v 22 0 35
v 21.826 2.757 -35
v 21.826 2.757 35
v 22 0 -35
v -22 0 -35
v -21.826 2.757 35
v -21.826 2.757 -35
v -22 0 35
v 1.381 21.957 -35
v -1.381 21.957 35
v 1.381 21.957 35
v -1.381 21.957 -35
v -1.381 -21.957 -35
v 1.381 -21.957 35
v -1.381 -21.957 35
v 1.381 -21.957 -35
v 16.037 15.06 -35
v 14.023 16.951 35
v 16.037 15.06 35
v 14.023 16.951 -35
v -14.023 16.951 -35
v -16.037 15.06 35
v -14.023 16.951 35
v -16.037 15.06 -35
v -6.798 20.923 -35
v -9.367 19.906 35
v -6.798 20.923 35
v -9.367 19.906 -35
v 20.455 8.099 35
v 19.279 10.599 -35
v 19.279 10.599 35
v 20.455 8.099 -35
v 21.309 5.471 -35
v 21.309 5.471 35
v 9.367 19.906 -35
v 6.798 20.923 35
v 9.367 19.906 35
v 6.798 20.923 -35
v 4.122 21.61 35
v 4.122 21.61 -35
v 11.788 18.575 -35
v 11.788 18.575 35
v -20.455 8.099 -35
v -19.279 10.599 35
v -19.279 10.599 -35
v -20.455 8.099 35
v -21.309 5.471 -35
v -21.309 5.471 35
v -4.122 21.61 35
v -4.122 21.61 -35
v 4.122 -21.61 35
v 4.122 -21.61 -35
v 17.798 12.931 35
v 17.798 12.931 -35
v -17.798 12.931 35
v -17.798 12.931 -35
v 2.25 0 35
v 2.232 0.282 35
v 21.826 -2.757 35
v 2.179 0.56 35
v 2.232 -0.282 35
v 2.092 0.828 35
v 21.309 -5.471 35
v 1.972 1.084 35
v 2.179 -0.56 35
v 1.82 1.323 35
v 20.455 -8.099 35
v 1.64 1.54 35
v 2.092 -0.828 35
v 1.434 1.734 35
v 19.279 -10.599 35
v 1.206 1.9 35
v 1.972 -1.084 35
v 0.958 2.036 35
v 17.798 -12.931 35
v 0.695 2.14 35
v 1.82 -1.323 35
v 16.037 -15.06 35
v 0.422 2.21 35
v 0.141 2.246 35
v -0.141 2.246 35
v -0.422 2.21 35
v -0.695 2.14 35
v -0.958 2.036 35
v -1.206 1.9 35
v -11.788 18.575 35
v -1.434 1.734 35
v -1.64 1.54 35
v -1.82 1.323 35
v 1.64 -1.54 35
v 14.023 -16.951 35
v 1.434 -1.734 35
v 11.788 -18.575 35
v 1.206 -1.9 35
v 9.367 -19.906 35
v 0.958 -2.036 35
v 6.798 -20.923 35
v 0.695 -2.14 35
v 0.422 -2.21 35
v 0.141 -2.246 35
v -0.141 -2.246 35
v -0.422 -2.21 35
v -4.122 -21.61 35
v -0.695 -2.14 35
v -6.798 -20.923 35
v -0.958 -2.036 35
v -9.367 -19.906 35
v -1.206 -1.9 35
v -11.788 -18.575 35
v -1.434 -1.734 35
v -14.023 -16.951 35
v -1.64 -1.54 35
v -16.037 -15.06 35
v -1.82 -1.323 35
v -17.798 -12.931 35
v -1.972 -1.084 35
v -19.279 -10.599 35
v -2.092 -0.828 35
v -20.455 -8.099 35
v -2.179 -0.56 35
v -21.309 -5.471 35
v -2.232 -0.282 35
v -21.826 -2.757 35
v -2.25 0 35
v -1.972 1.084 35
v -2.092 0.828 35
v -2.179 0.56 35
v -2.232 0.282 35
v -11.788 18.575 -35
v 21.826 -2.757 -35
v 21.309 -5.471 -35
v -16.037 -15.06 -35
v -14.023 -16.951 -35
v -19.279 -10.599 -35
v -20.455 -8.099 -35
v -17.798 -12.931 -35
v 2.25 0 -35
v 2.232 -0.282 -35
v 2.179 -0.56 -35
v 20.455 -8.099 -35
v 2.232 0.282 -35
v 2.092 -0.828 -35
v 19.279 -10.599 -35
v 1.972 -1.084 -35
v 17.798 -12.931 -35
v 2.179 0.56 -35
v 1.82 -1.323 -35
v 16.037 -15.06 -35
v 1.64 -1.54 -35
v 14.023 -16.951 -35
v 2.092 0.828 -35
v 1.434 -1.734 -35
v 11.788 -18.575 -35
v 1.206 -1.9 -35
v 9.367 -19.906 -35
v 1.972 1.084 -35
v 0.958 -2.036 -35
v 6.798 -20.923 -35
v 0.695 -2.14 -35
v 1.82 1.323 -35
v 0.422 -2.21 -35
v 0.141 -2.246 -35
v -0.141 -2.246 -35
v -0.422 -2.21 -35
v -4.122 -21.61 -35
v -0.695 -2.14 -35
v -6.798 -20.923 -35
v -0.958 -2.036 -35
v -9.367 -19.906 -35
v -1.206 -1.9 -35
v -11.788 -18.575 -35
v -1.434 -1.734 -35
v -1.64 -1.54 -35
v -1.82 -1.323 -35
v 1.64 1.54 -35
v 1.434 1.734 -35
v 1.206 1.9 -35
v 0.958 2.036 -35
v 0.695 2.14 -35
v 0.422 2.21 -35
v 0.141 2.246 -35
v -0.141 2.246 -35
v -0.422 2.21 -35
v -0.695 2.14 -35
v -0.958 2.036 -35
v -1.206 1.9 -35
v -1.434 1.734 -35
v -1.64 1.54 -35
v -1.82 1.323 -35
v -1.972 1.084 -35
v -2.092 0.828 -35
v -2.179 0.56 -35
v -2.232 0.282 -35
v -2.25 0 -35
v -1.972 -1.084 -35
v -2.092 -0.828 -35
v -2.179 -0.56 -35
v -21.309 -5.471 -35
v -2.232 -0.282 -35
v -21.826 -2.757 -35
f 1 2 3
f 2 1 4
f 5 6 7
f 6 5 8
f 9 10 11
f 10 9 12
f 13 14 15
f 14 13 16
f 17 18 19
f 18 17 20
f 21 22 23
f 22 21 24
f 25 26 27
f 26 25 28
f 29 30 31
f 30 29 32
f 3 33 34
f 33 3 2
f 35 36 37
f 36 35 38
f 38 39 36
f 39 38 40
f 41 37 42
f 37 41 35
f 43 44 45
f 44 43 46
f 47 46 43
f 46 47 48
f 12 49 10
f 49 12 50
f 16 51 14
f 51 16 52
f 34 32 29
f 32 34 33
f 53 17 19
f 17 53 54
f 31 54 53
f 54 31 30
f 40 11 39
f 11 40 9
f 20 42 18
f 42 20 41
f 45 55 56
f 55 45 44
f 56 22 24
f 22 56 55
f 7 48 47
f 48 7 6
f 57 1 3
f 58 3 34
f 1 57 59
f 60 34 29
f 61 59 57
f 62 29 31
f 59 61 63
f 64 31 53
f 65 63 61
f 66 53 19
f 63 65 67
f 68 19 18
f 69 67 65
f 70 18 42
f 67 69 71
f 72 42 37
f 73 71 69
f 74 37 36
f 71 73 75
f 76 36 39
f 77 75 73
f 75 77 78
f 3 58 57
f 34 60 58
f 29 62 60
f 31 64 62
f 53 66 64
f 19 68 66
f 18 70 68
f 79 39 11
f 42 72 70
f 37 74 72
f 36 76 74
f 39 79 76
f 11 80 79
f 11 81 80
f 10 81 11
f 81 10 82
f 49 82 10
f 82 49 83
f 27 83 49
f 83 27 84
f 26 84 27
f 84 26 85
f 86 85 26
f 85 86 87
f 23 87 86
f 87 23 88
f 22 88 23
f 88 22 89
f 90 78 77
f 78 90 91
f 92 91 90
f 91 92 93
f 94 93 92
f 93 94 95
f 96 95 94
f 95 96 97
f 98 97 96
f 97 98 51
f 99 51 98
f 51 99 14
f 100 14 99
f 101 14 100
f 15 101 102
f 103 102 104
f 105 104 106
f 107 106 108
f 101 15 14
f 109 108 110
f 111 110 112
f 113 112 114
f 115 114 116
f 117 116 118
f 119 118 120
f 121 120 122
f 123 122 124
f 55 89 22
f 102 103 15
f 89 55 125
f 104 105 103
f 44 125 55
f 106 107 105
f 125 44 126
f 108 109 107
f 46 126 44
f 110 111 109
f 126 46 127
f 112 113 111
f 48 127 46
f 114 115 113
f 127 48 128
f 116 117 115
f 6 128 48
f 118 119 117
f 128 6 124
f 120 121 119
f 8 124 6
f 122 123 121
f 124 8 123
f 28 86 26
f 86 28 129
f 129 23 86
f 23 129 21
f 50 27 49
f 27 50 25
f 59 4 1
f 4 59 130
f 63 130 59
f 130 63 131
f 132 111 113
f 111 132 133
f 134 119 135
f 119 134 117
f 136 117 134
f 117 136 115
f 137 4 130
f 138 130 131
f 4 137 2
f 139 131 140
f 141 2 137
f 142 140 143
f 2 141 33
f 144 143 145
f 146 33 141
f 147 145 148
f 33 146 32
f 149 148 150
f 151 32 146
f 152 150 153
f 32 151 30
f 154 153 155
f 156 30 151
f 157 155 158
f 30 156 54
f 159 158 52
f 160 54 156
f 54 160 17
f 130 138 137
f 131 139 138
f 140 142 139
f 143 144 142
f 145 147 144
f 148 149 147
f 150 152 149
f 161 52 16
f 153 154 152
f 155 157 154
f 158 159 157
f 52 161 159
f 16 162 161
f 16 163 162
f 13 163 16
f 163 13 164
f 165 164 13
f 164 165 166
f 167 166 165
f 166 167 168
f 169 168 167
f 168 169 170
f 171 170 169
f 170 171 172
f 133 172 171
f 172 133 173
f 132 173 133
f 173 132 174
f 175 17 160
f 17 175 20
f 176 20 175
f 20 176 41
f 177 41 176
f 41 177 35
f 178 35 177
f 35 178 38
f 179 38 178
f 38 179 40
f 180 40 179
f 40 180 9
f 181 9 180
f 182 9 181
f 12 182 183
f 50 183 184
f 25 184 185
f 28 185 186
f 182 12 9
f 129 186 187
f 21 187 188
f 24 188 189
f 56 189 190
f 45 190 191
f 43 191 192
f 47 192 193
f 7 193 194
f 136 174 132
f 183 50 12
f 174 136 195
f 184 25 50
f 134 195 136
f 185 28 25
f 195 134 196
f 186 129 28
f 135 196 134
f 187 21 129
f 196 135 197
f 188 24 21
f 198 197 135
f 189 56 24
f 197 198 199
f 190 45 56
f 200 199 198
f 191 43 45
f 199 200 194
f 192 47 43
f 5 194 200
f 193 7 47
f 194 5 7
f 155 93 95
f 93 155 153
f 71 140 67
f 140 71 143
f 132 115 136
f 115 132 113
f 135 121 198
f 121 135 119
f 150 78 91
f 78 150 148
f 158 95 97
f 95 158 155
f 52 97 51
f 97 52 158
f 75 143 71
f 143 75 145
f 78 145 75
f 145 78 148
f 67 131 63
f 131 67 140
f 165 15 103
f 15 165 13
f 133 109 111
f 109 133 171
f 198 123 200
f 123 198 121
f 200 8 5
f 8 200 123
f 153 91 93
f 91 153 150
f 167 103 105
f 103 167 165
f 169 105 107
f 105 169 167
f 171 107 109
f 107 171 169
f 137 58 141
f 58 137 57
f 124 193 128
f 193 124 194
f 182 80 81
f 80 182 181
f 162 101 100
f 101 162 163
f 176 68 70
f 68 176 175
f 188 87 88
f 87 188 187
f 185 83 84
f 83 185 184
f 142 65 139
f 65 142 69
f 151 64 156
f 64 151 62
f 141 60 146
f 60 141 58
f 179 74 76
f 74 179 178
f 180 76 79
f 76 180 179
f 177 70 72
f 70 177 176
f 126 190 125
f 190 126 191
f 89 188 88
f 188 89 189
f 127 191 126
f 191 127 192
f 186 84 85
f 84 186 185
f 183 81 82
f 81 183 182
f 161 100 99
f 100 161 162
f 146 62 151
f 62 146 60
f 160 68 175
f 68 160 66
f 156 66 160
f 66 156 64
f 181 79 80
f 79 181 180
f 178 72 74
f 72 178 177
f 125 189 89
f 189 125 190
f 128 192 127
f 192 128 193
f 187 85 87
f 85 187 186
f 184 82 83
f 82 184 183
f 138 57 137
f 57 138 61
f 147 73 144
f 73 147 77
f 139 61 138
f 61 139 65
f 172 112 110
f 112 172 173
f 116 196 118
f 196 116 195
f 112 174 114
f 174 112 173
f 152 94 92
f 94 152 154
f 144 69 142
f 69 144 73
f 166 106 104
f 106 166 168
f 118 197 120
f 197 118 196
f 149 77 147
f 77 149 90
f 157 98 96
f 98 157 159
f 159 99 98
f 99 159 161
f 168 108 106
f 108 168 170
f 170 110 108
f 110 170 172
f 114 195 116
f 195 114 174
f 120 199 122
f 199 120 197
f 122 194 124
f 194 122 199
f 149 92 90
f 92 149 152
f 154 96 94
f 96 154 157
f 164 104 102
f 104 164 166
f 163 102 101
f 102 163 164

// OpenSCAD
$fn = 50;


difference() {
	union() {
		translate(v = [0, 0, -35.0000000000]) {
			cylinder(h = 70, r = 22.0000000000);
		}
	}
	union() {
		translate(v = [0, 0, -100.0000000000]) {
			cylinder(h = 200, r = 2.2500000000);
		}
	}
}
